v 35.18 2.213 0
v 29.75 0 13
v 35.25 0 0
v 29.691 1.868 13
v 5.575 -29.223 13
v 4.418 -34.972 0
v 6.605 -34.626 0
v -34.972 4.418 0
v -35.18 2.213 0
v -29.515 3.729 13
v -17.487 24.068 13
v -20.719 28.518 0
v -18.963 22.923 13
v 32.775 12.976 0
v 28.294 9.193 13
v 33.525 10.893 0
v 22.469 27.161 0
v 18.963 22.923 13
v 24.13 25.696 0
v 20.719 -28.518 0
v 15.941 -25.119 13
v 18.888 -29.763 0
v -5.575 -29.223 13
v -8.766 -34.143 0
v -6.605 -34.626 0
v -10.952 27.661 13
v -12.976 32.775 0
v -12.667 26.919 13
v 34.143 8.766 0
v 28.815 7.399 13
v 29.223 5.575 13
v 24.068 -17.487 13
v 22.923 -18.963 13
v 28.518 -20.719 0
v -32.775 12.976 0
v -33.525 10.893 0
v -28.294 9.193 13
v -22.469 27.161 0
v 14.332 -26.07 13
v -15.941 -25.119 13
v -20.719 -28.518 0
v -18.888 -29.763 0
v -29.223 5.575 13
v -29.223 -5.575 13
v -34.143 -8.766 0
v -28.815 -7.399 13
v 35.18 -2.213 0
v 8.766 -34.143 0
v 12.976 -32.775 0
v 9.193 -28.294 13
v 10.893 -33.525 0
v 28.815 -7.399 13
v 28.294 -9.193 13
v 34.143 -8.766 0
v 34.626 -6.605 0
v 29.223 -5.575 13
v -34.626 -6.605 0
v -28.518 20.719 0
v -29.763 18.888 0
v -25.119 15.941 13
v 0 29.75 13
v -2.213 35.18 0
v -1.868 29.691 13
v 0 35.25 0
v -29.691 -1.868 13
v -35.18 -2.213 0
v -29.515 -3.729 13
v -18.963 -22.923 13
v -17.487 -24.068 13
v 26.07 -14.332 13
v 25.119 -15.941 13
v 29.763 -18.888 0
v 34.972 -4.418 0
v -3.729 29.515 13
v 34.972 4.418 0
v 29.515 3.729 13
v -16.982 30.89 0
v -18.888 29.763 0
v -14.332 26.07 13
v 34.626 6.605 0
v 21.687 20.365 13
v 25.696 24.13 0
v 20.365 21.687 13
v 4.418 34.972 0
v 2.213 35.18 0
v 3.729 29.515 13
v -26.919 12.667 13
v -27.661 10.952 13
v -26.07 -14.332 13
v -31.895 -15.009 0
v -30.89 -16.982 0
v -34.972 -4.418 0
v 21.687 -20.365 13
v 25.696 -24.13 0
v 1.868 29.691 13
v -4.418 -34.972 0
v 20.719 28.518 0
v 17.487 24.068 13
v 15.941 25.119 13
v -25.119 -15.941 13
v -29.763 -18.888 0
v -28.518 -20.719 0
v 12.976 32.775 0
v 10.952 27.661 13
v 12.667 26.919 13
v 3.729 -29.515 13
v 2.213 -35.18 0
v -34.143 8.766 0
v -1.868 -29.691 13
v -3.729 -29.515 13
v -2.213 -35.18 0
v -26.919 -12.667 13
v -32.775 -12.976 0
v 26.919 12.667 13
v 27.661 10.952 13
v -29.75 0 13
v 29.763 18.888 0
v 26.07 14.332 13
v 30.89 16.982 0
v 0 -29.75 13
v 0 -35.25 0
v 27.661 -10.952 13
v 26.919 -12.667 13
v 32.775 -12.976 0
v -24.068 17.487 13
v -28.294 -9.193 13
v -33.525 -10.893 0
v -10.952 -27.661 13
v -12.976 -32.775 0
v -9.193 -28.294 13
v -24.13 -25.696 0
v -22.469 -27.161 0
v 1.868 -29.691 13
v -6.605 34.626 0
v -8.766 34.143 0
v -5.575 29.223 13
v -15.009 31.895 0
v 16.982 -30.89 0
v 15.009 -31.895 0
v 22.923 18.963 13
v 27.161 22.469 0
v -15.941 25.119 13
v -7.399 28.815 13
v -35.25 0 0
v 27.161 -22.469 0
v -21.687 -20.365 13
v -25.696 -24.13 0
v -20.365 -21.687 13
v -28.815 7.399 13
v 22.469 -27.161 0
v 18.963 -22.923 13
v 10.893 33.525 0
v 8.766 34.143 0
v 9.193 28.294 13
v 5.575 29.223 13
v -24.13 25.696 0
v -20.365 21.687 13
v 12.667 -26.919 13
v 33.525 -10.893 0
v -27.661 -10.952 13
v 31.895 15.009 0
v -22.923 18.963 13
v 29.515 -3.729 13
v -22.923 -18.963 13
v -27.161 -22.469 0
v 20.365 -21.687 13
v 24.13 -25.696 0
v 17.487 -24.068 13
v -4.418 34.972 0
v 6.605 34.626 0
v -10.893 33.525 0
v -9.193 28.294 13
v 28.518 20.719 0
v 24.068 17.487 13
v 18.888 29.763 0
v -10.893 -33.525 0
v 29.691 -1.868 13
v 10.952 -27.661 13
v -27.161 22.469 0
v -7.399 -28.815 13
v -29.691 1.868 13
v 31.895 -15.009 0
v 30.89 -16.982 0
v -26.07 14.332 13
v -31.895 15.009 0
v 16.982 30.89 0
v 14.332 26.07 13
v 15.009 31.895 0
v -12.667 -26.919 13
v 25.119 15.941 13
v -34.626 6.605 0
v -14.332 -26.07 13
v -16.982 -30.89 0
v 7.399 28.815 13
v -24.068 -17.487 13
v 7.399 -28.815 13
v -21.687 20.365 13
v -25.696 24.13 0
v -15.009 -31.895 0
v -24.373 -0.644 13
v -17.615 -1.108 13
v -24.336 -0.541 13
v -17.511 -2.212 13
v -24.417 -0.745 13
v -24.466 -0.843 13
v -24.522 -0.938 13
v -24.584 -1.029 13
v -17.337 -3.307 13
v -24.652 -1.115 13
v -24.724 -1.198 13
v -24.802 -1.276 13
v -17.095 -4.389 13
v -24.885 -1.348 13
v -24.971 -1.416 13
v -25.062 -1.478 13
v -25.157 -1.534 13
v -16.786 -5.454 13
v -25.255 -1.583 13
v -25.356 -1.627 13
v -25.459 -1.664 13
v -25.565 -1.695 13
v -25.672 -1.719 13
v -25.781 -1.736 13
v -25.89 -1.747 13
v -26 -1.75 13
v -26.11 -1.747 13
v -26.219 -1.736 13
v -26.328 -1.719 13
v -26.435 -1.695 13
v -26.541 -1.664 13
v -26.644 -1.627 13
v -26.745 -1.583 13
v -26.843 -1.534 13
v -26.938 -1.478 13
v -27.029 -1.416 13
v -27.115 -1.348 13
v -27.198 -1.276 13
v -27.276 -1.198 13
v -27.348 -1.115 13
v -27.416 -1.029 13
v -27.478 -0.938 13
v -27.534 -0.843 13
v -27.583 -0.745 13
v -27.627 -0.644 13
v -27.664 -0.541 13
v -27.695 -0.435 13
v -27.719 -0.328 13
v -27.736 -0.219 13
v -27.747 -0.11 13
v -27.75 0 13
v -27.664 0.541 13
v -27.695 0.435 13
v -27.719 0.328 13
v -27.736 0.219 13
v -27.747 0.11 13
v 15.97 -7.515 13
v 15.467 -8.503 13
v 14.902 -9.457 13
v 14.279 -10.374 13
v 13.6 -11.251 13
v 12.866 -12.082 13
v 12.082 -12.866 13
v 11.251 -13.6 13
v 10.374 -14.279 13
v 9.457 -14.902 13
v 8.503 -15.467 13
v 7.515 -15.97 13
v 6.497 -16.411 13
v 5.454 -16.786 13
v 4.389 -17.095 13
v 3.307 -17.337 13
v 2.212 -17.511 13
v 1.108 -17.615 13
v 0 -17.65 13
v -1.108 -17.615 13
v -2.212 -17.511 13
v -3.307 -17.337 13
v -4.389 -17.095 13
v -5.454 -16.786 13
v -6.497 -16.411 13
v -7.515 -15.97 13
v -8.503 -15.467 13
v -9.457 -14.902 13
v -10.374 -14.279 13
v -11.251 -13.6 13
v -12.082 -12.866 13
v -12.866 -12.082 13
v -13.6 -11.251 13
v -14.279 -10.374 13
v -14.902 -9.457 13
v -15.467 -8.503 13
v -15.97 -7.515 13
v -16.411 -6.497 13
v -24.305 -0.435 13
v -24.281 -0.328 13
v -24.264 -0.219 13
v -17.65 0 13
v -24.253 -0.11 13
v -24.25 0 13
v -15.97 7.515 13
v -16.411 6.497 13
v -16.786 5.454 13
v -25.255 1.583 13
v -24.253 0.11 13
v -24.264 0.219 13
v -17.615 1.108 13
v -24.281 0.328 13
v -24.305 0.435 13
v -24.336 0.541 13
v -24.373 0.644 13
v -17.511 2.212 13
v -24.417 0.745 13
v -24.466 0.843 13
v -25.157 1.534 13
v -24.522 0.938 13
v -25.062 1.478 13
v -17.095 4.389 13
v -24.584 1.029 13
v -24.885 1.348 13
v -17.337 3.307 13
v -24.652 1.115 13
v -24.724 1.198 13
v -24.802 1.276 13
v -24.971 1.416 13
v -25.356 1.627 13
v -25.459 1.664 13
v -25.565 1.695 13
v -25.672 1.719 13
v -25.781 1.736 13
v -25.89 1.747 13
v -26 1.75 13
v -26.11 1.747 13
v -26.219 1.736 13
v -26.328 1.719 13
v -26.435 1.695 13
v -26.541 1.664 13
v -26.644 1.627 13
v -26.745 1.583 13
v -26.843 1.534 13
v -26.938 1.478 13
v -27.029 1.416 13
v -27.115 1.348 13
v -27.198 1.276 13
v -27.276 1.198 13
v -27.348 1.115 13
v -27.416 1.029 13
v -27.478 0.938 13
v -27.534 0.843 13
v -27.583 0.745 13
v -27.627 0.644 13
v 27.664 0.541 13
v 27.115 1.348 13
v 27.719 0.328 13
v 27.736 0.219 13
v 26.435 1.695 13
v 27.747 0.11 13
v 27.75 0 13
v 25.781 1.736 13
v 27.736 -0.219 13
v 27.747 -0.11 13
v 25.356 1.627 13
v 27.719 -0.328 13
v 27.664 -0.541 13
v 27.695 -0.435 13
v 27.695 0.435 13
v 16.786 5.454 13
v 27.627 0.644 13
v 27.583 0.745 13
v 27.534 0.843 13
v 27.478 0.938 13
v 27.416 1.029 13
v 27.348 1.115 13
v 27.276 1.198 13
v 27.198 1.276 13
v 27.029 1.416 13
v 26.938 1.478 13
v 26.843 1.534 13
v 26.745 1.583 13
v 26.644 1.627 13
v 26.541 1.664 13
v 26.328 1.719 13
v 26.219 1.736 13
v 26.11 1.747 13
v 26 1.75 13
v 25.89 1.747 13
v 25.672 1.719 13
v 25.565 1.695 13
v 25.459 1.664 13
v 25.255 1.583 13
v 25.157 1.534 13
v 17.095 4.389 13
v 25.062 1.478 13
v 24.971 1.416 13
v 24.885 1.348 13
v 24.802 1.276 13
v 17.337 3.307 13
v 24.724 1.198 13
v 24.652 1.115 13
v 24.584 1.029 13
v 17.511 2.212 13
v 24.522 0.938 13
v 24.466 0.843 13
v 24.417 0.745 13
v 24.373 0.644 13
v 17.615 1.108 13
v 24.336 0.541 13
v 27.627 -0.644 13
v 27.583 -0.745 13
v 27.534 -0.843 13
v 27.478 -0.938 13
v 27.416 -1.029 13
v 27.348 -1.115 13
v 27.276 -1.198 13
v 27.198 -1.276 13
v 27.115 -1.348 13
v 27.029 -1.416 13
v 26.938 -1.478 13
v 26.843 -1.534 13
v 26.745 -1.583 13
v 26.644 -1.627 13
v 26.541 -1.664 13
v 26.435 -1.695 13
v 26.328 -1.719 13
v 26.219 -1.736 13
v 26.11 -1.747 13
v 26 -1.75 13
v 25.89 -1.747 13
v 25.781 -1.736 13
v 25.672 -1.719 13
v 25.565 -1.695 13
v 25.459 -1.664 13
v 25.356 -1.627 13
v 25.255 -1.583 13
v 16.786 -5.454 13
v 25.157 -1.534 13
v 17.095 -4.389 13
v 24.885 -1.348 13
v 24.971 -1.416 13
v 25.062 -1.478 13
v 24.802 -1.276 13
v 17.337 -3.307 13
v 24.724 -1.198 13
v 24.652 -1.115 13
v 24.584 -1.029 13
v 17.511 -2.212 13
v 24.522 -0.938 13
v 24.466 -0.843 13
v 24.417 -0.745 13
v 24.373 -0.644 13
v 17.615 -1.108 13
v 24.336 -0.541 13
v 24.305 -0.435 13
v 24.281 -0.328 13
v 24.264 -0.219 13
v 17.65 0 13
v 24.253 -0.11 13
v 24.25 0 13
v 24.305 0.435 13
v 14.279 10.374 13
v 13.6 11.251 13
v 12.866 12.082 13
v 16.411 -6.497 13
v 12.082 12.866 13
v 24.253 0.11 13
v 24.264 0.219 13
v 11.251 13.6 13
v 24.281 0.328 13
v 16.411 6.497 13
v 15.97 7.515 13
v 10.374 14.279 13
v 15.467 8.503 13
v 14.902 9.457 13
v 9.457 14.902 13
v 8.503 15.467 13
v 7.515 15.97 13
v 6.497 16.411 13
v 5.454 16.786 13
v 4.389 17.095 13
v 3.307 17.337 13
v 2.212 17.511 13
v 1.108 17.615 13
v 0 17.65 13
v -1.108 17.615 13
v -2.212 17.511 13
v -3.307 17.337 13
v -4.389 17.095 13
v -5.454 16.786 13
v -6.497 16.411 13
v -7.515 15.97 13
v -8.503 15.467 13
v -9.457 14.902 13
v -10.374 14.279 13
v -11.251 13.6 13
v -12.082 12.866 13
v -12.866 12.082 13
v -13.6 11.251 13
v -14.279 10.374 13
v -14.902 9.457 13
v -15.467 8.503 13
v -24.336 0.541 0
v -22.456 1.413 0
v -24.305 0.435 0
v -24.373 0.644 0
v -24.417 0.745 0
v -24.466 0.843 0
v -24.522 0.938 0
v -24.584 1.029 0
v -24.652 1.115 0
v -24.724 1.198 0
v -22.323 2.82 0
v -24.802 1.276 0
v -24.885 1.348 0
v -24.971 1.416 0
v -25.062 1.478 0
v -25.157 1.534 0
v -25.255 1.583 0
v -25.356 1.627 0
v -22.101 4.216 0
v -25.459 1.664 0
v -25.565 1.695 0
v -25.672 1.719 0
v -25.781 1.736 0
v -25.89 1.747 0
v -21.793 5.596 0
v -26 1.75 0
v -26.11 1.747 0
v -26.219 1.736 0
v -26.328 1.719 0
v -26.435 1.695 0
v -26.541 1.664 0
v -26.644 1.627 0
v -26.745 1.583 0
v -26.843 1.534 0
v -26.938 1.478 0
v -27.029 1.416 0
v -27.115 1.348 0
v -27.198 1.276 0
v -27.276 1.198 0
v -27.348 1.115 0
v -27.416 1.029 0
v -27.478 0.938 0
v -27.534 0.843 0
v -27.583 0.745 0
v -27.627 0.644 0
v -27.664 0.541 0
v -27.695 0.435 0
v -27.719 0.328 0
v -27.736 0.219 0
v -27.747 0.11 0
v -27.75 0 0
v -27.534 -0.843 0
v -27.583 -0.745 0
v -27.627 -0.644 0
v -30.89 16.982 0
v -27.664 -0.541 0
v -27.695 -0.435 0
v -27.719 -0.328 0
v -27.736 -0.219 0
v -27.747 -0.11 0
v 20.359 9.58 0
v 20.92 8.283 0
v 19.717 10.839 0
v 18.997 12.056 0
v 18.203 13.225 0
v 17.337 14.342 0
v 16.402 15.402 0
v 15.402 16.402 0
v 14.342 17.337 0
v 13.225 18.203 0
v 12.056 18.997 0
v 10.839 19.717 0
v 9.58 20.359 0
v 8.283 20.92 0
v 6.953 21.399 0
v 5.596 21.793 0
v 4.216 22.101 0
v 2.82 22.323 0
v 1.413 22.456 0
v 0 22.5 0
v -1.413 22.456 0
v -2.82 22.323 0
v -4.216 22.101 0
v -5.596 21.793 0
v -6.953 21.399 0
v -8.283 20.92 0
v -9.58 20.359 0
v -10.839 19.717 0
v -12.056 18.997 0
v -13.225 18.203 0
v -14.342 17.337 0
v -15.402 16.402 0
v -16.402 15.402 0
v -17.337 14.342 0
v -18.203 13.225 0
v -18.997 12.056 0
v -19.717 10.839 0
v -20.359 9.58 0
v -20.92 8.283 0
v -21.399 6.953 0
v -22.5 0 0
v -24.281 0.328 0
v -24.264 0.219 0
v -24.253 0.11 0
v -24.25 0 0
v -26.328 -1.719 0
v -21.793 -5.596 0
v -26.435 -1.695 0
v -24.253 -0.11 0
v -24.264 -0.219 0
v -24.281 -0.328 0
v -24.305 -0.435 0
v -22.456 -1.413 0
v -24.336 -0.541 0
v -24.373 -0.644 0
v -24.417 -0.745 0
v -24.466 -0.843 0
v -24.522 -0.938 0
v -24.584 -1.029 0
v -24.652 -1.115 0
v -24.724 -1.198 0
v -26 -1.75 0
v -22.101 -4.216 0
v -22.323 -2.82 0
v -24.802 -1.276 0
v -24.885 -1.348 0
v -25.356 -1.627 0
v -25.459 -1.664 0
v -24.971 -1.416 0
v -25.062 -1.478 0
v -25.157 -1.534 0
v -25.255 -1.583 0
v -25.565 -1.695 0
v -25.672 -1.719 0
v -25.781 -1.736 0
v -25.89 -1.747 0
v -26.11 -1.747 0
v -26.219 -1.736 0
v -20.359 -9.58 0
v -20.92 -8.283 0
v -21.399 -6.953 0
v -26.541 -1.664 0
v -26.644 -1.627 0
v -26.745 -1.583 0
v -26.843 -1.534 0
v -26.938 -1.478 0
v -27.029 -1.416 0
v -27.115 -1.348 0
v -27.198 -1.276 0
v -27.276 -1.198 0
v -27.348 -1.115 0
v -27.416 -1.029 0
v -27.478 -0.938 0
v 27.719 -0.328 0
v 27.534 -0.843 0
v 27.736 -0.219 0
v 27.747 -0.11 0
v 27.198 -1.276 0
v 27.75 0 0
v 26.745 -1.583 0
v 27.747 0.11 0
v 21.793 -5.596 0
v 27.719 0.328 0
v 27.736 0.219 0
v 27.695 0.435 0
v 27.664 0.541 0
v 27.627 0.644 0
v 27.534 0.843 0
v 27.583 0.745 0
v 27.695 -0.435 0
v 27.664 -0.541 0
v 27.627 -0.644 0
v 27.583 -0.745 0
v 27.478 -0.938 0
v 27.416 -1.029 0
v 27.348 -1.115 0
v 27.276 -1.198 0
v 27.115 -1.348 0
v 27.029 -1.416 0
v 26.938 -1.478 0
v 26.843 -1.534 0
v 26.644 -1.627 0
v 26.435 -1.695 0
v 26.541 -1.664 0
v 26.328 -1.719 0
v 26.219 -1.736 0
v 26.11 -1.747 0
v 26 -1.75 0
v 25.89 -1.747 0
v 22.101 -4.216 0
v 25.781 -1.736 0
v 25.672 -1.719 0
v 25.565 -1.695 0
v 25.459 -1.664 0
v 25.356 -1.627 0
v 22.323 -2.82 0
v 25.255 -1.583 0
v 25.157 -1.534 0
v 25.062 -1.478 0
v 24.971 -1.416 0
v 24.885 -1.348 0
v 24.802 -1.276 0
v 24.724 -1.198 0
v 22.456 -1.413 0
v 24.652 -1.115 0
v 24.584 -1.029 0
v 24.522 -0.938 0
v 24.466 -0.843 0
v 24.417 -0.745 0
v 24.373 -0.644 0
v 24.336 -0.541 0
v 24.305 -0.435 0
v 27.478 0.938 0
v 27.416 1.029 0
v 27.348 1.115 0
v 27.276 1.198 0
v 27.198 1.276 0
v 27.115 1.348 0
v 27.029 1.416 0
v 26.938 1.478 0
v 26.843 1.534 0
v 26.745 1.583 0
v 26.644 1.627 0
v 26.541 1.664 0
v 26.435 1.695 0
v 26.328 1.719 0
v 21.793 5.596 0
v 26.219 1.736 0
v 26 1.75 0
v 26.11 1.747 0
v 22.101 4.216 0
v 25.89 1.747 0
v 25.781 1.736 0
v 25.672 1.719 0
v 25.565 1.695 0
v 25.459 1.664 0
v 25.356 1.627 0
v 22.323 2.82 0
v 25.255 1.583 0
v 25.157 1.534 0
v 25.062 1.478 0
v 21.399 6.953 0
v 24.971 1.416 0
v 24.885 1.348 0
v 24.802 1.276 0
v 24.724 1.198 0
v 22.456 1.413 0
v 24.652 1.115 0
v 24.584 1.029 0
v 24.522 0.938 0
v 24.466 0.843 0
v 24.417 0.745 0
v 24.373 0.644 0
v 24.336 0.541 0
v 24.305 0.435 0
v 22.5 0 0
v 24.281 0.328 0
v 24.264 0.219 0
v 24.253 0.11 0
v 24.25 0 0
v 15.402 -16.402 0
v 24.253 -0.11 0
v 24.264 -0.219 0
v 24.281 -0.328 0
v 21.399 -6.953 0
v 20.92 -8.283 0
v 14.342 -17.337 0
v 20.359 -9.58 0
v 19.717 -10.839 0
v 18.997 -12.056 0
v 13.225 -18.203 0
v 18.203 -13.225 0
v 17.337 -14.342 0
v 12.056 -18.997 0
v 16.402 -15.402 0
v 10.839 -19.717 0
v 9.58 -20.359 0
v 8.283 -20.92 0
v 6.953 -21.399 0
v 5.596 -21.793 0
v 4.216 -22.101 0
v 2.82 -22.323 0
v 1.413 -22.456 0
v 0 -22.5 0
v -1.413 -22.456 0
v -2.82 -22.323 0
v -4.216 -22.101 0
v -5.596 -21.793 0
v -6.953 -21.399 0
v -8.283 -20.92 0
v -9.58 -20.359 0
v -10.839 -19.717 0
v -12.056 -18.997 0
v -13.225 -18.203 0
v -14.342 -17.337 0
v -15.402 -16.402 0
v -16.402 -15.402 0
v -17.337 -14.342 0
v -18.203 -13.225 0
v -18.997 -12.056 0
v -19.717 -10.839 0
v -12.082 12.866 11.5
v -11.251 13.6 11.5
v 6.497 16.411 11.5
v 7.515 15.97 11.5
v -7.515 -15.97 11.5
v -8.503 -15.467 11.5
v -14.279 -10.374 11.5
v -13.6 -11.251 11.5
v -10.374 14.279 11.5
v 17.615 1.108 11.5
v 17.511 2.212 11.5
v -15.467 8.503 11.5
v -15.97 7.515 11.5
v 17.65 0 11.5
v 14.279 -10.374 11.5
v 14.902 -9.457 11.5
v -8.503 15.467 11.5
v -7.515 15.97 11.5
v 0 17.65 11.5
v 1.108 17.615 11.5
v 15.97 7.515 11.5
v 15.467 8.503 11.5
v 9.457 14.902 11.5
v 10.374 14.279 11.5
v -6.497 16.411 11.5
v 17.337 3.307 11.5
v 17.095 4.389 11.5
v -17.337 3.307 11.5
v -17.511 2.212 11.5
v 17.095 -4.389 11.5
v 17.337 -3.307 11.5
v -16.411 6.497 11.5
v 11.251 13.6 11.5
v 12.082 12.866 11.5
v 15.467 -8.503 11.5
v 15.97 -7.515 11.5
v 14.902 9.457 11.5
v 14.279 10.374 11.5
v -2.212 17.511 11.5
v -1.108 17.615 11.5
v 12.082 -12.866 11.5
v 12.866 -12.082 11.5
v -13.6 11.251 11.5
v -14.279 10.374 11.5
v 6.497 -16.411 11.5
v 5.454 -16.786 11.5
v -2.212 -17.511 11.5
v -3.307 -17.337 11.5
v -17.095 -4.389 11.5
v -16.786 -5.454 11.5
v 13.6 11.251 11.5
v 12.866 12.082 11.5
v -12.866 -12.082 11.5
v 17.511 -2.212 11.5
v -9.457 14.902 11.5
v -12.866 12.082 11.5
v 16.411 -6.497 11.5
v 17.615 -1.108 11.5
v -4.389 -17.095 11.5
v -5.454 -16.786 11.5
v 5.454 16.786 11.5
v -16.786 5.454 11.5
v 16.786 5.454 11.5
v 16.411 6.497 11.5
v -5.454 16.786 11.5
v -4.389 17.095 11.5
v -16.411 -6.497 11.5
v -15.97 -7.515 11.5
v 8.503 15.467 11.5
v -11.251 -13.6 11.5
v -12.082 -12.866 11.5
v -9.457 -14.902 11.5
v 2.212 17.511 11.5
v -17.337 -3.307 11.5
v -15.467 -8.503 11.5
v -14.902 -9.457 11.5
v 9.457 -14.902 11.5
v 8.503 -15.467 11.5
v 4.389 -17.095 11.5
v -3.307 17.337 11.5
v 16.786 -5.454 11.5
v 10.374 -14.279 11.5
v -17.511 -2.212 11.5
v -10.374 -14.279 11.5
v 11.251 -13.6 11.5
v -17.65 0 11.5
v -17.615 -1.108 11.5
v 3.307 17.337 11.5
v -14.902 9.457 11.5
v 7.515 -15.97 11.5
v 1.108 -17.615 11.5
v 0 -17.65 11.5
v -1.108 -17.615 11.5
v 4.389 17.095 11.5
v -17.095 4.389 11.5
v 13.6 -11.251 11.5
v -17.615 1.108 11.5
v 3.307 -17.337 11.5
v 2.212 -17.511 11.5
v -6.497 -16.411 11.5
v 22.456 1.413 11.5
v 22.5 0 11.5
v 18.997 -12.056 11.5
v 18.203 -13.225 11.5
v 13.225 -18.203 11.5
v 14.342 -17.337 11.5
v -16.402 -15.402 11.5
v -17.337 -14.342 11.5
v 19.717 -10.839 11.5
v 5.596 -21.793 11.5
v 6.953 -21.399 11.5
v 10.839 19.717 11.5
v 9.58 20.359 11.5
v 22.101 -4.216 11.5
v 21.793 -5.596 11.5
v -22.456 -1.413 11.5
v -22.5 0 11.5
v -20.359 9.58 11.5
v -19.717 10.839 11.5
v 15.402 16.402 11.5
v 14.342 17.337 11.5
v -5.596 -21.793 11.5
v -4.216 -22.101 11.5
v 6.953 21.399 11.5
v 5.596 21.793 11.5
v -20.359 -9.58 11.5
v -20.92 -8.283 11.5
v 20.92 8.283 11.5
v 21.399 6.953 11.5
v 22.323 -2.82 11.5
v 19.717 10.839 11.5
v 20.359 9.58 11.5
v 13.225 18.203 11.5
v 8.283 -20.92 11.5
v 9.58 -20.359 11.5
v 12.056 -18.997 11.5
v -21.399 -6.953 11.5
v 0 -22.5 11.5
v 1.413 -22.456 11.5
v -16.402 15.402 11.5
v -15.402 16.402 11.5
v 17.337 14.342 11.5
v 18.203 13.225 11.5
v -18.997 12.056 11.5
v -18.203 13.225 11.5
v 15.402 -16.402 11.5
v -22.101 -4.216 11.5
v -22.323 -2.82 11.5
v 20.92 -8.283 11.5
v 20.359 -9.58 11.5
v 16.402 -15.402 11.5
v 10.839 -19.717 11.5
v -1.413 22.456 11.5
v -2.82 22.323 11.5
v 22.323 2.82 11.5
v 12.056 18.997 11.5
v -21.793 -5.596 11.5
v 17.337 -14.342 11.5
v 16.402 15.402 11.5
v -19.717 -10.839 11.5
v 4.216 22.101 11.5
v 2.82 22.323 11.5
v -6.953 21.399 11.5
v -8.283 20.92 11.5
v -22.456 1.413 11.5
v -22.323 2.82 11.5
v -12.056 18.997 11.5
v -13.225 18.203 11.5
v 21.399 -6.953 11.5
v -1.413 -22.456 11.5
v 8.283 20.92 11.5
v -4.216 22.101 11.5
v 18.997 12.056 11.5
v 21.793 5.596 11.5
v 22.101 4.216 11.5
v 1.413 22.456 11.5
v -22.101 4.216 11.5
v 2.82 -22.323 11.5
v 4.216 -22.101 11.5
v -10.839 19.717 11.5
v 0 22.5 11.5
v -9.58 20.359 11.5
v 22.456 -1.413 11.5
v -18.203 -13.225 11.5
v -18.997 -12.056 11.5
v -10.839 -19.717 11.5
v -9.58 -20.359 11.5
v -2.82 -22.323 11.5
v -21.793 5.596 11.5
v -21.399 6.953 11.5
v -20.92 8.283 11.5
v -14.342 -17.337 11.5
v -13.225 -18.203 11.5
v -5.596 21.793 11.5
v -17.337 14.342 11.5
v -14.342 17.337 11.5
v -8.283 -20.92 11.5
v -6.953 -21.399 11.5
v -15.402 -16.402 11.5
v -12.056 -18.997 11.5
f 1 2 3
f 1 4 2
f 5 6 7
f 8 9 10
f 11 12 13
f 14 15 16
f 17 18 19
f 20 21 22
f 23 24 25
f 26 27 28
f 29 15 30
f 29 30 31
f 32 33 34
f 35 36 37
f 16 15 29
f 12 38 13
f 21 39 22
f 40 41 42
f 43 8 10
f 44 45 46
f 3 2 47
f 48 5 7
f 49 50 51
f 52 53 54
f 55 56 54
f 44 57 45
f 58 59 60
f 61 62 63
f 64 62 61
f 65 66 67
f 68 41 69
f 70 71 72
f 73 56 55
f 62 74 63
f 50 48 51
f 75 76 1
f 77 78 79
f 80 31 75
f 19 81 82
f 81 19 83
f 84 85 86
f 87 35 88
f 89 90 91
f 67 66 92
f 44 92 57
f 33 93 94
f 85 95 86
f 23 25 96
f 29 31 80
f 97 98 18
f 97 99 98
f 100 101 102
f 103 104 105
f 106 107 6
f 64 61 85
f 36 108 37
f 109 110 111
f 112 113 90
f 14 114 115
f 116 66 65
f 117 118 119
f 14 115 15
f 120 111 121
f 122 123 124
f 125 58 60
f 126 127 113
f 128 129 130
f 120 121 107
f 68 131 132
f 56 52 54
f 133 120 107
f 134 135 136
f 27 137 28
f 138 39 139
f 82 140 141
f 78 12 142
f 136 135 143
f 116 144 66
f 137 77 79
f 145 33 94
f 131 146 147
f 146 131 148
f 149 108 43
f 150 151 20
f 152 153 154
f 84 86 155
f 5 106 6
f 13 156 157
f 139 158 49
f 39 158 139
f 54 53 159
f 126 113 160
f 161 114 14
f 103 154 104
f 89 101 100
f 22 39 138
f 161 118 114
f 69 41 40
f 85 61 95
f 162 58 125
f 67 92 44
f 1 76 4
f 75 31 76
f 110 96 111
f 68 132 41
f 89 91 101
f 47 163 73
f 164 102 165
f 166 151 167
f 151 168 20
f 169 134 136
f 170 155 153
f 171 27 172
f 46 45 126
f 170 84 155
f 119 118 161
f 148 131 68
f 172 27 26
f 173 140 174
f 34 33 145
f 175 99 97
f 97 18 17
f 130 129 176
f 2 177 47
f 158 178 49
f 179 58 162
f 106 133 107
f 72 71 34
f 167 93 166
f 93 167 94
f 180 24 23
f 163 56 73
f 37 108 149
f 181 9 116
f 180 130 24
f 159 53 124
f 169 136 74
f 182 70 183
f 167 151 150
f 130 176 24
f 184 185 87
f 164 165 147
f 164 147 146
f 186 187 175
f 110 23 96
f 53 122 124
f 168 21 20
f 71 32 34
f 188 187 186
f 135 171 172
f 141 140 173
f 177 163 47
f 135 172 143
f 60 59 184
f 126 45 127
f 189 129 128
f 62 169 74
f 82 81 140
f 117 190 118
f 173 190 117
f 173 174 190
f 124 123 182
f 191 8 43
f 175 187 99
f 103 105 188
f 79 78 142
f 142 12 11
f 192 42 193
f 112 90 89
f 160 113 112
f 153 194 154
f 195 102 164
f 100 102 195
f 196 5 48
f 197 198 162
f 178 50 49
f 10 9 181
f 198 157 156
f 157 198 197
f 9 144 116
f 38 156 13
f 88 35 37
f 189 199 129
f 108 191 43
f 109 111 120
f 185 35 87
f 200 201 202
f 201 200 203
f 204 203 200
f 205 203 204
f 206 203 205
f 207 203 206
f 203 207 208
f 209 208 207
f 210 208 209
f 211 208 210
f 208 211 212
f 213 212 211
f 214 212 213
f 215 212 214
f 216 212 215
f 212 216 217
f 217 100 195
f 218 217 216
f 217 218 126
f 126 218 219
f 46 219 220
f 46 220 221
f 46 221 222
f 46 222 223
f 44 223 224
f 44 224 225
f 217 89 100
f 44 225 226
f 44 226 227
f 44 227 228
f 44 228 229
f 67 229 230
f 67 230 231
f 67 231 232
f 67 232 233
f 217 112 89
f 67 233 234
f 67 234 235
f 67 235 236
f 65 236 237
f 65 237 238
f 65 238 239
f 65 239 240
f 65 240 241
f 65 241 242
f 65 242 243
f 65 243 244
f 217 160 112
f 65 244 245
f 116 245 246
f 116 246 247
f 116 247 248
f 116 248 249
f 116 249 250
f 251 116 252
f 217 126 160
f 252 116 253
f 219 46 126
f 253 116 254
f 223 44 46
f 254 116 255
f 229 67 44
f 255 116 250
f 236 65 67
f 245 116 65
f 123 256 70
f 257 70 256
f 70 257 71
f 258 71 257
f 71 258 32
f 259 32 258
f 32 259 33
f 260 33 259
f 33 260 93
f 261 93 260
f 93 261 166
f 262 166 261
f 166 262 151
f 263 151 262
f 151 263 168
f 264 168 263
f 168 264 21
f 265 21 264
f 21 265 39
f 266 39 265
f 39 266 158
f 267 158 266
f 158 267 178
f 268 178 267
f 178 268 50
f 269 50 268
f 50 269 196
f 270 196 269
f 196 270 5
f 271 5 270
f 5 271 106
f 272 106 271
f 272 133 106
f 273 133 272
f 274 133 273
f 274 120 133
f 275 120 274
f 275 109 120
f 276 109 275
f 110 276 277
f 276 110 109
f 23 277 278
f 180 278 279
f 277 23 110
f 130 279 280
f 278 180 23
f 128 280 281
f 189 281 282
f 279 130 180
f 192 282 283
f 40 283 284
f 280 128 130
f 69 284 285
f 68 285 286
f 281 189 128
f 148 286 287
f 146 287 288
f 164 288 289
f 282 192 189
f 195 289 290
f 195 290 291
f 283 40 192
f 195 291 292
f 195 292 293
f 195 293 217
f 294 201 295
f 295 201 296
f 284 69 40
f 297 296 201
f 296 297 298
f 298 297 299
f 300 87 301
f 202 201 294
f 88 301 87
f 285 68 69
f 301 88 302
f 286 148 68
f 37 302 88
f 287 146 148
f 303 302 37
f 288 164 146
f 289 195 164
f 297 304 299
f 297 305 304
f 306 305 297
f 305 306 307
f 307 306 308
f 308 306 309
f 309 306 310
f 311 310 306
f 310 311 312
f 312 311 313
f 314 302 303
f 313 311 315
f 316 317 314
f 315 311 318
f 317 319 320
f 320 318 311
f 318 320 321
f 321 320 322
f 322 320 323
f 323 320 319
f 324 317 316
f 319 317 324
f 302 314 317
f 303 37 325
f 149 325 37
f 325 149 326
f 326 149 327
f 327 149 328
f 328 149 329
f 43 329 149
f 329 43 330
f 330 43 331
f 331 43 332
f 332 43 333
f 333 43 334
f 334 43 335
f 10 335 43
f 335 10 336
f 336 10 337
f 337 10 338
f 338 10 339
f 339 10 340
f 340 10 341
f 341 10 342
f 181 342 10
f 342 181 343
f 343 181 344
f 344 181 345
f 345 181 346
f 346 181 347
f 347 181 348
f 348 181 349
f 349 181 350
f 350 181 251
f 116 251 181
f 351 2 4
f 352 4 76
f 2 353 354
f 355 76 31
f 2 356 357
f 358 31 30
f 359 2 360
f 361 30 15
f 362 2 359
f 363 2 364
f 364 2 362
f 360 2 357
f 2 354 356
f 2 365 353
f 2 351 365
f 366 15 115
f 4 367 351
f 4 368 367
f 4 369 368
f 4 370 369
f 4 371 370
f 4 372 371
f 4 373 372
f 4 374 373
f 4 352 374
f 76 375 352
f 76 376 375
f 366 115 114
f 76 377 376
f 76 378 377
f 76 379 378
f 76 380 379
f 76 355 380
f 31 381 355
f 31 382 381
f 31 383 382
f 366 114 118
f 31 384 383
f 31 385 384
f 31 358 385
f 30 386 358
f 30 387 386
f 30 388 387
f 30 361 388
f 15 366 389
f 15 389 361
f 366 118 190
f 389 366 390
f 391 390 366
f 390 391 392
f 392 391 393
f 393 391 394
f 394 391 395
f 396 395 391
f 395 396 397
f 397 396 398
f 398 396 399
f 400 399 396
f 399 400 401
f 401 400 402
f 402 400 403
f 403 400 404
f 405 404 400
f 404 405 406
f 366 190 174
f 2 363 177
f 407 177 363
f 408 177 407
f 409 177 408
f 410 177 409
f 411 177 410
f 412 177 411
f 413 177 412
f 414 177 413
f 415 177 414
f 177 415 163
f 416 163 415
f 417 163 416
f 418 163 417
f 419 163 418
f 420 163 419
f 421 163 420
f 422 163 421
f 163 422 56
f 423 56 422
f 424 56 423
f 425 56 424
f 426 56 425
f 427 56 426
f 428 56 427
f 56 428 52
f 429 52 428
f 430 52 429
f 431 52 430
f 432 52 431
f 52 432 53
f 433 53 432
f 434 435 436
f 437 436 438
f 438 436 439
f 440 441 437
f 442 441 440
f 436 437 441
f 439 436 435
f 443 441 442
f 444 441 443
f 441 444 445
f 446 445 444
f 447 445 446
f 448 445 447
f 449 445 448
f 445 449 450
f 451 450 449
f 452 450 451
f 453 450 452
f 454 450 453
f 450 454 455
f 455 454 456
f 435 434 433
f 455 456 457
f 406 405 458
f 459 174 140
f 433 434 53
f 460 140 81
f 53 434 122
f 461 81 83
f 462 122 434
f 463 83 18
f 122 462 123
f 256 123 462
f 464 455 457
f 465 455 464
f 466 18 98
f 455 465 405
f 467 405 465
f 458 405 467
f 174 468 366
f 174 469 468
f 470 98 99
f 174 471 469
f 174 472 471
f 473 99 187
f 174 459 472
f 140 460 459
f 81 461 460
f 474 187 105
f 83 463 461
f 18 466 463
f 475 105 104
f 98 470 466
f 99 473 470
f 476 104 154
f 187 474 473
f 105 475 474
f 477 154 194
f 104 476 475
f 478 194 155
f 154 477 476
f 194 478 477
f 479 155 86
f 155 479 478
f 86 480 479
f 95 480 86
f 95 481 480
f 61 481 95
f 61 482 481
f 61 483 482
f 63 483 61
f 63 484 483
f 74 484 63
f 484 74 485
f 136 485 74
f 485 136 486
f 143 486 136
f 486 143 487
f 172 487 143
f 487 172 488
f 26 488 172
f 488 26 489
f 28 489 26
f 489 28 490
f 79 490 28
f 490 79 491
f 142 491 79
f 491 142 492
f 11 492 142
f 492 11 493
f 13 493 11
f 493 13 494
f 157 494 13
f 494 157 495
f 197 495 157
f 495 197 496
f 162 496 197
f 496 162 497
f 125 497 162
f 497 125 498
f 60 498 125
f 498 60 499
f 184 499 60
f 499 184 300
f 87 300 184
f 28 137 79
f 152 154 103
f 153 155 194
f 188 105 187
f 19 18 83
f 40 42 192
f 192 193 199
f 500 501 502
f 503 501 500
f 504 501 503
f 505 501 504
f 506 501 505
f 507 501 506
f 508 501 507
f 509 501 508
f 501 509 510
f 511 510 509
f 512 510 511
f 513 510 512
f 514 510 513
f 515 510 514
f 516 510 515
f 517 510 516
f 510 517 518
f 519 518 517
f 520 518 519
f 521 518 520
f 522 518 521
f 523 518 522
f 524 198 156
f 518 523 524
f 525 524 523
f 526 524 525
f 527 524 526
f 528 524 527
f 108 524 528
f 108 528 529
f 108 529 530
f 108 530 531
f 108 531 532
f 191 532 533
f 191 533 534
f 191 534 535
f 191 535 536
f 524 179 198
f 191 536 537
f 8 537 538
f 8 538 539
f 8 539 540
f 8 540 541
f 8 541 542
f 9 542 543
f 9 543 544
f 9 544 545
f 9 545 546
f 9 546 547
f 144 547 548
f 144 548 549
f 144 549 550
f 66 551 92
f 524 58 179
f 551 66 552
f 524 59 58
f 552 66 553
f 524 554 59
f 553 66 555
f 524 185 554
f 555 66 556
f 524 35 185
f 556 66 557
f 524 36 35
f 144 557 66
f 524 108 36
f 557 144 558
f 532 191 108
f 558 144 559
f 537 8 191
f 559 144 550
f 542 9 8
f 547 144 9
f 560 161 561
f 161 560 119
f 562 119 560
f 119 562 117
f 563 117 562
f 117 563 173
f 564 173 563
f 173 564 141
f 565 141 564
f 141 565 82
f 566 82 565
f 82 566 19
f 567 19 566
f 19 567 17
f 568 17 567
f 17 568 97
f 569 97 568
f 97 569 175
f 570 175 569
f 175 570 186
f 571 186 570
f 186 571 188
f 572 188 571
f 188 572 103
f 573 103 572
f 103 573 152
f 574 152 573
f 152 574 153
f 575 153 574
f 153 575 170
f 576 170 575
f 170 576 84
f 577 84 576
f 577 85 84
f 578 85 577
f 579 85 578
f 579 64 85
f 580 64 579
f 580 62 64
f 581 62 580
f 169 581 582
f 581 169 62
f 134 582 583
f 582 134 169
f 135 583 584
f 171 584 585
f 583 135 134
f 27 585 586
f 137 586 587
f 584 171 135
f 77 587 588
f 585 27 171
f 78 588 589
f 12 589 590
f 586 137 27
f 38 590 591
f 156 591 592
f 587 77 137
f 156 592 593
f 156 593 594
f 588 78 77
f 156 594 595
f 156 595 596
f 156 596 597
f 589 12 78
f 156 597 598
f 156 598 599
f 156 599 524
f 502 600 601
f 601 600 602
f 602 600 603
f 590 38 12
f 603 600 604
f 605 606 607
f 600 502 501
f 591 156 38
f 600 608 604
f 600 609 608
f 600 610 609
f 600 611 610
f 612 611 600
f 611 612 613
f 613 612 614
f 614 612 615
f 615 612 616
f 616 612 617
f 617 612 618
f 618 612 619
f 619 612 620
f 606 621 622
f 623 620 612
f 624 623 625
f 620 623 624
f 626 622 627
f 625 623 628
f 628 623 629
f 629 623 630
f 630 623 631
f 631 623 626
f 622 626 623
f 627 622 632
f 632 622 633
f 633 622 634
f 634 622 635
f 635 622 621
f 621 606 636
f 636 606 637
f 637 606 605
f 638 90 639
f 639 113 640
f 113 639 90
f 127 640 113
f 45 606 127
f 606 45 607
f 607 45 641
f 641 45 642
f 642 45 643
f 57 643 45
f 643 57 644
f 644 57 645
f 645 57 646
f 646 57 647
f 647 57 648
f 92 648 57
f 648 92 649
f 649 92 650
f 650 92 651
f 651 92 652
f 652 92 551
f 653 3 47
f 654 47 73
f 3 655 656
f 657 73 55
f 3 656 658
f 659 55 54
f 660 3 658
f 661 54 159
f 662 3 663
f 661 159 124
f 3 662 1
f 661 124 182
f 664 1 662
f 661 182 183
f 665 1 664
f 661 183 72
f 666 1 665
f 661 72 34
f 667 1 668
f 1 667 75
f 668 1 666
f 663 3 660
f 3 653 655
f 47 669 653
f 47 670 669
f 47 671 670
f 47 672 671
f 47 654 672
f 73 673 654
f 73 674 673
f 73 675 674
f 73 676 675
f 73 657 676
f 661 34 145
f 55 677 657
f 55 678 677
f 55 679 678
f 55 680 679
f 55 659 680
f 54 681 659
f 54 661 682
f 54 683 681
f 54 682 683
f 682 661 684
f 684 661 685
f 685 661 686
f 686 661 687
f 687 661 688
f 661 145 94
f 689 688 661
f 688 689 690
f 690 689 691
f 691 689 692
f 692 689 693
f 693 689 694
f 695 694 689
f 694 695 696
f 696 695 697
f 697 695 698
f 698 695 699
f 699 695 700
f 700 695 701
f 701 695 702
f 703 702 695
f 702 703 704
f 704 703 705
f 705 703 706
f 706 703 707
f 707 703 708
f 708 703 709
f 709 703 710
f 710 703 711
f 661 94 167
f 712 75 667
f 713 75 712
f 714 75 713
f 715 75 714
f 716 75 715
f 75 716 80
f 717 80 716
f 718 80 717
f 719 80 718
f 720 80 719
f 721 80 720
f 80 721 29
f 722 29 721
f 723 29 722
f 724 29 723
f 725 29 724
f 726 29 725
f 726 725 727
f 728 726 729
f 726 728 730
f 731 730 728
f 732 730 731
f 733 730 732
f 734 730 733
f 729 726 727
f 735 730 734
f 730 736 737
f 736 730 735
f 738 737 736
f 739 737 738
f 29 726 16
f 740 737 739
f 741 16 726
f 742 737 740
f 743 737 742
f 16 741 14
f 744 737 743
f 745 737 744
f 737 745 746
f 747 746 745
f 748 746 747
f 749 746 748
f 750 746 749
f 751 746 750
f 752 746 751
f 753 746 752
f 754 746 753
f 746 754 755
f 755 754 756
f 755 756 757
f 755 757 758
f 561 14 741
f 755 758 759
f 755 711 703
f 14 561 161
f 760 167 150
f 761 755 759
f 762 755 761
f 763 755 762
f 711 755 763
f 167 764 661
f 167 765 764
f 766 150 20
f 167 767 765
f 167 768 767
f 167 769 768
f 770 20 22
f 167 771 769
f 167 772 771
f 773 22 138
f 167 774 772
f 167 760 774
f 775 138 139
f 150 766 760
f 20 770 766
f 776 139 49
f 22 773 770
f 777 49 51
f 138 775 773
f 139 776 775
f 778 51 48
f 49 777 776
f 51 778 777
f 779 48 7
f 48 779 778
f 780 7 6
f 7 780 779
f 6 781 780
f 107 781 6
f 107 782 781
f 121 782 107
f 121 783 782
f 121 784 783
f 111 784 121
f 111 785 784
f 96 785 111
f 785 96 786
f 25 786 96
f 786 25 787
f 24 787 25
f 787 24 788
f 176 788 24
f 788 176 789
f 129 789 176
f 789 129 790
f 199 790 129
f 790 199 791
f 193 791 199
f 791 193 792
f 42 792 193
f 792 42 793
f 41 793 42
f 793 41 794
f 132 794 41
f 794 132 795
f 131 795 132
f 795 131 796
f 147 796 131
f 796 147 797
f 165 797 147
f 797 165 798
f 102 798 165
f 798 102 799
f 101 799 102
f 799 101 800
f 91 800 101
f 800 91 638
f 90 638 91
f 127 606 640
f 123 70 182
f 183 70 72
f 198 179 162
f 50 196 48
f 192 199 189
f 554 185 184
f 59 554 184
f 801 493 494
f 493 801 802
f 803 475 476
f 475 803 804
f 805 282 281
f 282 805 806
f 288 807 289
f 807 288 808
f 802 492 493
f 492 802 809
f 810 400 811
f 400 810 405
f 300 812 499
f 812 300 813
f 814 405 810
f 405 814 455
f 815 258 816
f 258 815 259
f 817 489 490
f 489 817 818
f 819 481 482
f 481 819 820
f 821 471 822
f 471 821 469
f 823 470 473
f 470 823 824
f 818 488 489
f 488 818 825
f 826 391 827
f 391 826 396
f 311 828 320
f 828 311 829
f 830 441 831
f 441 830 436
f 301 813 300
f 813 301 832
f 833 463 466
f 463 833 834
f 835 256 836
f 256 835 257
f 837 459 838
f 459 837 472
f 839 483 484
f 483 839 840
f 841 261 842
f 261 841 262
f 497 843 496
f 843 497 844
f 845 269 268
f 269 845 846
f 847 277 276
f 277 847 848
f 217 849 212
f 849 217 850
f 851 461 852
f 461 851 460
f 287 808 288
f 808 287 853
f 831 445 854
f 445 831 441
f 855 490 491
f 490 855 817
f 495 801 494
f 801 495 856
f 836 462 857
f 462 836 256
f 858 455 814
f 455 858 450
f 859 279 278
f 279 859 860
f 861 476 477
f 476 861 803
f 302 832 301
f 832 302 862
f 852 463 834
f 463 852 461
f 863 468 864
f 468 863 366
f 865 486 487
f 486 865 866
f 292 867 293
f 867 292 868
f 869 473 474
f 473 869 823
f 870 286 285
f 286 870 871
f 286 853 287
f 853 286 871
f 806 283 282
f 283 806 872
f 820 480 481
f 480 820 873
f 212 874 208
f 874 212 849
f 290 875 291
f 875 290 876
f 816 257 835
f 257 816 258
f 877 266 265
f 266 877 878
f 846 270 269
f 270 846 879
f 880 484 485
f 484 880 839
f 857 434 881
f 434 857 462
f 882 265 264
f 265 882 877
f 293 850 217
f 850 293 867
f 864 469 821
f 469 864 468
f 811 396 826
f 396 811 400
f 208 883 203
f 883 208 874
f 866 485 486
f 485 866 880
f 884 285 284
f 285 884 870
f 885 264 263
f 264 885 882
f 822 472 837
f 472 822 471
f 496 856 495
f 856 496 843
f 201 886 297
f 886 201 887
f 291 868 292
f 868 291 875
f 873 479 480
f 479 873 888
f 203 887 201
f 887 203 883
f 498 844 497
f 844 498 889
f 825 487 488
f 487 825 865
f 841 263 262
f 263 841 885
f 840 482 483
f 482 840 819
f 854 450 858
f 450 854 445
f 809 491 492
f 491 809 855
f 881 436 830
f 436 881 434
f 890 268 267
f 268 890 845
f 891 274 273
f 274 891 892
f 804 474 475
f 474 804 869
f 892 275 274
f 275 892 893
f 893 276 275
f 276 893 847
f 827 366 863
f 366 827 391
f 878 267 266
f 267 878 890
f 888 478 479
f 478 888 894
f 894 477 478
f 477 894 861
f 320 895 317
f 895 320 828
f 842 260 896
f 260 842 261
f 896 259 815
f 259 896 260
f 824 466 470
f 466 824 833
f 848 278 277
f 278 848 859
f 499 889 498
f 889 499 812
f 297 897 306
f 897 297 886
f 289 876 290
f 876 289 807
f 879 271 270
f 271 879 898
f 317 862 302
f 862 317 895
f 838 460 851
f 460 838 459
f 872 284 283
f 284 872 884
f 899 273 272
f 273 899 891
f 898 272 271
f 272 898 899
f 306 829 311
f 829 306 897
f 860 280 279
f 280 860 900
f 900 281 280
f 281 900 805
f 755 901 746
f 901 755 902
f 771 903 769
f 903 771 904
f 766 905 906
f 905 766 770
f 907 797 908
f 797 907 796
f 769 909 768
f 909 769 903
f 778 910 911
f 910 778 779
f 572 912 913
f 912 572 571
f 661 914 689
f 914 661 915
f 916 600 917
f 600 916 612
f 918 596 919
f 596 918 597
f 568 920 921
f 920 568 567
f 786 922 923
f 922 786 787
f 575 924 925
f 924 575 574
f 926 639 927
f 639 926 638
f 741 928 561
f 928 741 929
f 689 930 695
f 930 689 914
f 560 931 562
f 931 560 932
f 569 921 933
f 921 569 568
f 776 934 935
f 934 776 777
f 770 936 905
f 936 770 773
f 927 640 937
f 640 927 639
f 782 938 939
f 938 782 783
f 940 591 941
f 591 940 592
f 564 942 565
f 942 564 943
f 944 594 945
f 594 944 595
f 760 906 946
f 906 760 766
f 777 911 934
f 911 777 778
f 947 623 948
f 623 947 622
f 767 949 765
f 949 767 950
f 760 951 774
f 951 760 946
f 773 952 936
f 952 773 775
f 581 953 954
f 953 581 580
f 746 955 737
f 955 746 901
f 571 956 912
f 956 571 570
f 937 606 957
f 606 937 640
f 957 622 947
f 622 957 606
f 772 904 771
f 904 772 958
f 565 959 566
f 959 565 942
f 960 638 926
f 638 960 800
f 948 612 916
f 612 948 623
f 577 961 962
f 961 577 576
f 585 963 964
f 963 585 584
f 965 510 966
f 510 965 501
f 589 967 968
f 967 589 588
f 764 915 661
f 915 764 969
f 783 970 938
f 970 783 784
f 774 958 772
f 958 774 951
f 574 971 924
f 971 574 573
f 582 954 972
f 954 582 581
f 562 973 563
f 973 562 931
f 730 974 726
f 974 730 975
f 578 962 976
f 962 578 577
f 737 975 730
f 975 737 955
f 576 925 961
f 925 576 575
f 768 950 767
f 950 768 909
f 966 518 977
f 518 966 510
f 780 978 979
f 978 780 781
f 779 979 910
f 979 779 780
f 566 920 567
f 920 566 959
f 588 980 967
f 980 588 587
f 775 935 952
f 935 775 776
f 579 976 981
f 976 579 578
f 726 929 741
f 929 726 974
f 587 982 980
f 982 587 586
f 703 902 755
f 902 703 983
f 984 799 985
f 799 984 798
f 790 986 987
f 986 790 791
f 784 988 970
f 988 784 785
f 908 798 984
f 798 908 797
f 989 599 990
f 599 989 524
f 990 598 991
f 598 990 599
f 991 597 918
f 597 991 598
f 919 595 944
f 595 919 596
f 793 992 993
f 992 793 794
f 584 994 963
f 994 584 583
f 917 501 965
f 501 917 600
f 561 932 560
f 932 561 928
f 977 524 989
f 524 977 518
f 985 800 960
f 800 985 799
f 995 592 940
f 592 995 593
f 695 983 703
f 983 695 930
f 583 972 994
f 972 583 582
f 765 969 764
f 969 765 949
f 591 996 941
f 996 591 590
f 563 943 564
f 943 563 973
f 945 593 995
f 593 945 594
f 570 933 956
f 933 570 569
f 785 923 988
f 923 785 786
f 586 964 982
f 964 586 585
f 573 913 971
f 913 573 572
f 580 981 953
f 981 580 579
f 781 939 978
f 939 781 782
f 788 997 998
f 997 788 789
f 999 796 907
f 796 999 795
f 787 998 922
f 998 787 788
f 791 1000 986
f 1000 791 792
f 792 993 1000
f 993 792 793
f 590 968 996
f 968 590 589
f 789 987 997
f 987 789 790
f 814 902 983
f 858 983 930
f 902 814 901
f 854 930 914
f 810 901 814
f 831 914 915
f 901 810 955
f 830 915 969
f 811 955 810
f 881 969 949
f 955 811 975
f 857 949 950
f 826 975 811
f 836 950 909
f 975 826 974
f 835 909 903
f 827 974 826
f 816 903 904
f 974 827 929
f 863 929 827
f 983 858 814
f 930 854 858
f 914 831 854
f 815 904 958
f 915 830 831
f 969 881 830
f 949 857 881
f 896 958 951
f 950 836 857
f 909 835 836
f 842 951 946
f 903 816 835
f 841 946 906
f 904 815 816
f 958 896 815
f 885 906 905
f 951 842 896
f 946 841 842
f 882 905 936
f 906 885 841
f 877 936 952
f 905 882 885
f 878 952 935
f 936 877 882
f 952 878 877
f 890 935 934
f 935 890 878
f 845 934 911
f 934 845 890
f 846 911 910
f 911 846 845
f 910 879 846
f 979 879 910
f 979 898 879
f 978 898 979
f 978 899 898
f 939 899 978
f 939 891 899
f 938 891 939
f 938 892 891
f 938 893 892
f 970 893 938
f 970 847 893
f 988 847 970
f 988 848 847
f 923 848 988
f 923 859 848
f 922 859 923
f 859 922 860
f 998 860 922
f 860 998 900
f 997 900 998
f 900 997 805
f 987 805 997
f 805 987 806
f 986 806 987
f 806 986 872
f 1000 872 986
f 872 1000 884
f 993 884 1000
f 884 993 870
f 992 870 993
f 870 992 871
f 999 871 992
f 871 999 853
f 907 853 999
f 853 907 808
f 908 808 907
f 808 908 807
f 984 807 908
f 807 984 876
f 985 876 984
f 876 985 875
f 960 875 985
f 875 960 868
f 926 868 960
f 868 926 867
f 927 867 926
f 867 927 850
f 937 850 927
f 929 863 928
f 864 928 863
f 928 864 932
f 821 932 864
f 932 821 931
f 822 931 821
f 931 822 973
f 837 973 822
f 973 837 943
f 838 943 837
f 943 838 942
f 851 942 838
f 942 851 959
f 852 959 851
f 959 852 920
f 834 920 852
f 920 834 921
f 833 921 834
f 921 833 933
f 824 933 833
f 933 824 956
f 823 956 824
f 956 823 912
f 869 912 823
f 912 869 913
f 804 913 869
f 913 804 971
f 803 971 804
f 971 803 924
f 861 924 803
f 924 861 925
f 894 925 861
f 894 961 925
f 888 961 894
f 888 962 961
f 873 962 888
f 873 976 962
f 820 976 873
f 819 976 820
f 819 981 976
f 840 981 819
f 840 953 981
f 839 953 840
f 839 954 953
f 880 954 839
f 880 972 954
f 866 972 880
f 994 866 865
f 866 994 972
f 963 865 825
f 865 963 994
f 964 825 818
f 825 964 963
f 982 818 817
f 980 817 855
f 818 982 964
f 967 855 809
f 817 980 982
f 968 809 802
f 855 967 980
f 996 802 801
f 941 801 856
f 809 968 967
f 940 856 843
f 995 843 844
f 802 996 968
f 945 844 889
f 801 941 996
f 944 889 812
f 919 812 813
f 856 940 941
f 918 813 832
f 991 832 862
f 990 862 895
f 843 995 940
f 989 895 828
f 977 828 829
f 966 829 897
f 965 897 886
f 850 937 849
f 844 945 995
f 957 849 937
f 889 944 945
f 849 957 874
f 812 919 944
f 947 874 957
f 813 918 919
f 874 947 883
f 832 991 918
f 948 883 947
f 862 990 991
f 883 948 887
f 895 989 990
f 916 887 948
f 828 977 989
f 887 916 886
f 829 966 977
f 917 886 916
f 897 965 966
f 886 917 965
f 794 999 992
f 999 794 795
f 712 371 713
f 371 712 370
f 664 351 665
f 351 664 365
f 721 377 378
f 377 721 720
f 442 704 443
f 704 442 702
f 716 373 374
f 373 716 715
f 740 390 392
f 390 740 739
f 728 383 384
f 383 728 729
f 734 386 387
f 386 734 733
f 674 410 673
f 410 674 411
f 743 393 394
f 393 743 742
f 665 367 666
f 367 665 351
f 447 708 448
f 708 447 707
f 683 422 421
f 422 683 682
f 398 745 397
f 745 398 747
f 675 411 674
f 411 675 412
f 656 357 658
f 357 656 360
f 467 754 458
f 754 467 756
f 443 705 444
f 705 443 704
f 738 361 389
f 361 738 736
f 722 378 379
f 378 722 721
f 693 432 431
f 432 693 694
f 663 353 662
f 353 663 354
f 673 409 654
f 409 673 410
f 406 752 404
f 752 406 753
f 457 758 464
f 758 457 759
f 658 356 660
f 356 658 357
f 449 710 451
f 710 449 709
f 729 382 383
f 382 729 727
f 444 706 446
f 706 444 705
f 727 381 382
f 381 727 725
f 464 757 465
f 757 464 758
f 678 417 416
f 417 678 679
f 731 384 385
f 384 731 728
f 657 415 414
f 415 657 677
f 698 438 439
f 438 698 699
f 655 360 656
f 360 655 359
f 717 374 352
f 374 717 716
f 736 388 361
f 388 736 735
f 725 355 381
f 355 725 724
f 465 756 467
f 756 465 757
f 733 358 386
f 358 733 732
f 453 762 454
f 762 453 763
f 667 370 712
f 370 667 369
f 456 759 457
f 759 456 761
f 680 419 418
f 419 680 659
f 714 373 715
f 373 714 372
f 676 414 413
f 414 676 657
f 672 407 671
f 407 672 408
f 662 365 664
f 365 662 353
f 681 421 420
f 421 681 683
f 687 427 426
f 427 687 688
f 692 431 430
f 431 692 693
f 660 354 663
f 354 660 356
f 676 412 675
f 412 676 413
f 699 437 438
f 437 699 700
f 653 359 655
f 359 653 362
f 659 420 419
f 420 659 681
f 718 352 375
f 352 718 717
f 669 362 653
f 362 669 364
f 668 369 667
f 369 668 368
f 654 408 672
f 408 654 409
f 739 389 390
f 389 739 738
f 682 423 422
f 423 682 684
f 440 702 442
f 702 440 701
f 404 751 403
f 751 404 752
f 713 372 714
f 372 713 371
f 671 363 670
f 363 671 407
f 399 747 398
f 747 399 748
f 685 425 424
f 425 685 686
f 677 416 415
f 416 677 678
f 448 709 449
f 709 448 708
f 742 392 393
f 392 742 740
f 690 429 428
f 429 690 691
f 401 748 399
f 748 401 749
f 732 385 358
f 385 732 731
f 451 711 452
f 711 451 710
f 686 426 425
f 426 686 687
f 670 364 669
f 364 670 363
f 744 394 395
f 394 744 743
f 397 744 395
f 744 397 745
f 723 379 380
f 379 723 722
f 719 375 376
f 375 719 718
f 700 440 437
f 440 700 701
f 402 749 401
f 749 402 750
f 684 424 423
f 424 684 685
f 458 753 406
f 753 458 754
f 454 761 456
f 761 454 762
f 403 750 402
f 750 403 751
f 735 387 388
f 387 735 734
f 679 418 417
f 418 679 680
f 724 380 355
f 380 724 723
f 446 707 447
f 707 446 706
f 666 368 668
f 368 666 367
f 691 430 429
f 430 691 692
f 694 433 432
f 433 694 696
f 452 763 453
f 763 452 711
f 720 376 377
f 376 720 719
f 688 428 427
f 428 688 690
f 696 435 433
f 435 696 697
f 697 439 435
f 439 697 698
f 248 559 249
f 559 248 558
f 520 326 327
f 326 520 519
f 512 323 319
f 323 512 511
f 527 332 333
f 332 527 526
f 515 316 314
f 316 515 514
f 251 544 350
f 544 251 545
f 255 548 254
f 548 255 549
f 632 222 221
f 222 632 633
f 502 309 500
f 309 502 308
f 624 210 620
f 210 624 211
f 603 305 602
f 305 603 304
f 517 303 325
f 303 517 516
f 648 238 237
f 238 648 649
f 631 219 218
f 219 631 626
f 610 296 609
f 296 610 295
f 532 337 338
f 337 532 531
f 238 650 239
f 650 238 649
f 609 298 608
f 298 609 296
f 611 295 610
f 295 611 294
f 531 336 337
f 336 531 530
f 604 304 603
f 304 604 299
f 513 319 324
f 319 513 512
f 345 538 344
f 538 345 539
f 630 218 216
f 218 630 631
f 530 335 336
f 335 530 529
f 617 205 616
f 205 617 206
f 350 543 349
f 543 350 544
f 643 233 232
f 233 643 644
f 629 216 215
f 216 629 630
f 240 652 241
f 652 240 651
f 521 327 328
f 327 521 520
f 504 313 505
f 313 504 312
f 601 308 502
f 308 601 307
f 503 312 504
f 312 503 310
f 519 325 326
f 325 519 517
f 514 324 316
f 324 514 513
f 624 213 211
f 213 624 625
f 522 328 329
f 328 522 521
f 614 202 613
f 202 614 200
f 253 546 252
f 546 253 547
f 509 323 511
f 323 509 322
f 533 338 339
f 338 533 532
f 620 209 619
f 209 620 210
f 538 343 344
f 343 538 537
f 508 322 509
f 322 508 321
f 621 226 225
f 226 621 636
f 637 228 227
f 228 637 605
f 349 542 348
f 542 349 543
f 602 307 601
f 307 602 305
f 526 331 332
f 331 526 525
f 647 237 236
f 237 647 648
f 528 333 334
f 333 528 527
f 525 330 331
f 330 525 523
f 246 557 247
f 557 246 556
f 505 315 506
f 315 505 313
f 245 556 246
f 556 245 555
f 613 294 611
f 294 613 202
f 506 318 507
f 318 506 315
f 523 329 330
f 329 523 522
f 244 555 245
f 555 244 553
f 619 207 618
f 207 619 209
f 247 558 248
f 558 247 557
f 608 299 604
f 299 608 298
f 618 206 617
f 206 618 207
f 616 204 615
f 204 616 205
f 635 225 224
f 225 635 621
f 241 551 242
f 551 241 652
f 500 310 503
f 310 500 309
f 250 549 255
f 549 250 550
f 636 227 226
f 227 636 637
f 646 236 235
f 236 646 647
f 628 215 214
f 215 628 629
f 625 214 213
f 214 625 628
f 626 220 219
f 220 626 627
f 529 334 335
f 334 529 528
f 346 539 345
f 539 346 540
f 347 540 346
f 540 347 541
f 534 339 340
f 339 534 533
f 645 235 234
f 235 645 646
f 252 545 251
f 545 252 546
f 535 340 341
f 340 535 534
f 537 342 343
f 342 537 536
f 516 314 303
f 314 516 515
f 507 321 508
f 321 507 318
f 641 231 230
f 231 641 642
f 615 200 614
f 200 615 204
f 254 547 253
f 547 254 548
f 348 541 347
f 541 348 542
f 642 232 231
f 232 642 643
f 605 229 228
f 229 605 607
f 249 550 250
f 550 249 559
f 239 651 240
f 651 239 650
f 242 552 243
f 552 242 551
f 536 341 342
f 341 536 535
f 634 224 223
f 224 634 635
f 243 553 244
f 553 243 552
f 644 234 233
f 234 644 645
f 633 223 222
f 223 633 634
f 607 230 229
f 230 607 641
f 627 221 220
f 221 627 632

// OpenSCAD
/****************************************************************
* title: Retainer 38mm
* author: Boris du Reau
* version: 1.0
* date: 13/06/2026
* 
* Description: 
* Howto use it:
* 
* then just click on "compile and render" 
* Note that all units ar metrics
*****************************************************************/
$fn=100;

module retainer38() {
    difference ()
    {
        union(){
            cylinder (r1=70.5/2,r2=59.5/2, h=13, $fn=100);
            cylinder (r=45/2, h=13);
        }
        cylinder (r=35.3/2, h=13);
        cylinder (r=(45/2), h=11.5);

        //holes
        #translate([(52/2),0,0]) cylinder (r=3.5/2, h=15);
        #translate([-(52/2),0,0])cylinder (r=3.5/2, h=15);
    }
}

module washer38() {
    difference() {
        circle(d=44.5, $fn=100);
        circle(d=35.5, $fn=100);
    }
}

retainer38();
//washer38();
